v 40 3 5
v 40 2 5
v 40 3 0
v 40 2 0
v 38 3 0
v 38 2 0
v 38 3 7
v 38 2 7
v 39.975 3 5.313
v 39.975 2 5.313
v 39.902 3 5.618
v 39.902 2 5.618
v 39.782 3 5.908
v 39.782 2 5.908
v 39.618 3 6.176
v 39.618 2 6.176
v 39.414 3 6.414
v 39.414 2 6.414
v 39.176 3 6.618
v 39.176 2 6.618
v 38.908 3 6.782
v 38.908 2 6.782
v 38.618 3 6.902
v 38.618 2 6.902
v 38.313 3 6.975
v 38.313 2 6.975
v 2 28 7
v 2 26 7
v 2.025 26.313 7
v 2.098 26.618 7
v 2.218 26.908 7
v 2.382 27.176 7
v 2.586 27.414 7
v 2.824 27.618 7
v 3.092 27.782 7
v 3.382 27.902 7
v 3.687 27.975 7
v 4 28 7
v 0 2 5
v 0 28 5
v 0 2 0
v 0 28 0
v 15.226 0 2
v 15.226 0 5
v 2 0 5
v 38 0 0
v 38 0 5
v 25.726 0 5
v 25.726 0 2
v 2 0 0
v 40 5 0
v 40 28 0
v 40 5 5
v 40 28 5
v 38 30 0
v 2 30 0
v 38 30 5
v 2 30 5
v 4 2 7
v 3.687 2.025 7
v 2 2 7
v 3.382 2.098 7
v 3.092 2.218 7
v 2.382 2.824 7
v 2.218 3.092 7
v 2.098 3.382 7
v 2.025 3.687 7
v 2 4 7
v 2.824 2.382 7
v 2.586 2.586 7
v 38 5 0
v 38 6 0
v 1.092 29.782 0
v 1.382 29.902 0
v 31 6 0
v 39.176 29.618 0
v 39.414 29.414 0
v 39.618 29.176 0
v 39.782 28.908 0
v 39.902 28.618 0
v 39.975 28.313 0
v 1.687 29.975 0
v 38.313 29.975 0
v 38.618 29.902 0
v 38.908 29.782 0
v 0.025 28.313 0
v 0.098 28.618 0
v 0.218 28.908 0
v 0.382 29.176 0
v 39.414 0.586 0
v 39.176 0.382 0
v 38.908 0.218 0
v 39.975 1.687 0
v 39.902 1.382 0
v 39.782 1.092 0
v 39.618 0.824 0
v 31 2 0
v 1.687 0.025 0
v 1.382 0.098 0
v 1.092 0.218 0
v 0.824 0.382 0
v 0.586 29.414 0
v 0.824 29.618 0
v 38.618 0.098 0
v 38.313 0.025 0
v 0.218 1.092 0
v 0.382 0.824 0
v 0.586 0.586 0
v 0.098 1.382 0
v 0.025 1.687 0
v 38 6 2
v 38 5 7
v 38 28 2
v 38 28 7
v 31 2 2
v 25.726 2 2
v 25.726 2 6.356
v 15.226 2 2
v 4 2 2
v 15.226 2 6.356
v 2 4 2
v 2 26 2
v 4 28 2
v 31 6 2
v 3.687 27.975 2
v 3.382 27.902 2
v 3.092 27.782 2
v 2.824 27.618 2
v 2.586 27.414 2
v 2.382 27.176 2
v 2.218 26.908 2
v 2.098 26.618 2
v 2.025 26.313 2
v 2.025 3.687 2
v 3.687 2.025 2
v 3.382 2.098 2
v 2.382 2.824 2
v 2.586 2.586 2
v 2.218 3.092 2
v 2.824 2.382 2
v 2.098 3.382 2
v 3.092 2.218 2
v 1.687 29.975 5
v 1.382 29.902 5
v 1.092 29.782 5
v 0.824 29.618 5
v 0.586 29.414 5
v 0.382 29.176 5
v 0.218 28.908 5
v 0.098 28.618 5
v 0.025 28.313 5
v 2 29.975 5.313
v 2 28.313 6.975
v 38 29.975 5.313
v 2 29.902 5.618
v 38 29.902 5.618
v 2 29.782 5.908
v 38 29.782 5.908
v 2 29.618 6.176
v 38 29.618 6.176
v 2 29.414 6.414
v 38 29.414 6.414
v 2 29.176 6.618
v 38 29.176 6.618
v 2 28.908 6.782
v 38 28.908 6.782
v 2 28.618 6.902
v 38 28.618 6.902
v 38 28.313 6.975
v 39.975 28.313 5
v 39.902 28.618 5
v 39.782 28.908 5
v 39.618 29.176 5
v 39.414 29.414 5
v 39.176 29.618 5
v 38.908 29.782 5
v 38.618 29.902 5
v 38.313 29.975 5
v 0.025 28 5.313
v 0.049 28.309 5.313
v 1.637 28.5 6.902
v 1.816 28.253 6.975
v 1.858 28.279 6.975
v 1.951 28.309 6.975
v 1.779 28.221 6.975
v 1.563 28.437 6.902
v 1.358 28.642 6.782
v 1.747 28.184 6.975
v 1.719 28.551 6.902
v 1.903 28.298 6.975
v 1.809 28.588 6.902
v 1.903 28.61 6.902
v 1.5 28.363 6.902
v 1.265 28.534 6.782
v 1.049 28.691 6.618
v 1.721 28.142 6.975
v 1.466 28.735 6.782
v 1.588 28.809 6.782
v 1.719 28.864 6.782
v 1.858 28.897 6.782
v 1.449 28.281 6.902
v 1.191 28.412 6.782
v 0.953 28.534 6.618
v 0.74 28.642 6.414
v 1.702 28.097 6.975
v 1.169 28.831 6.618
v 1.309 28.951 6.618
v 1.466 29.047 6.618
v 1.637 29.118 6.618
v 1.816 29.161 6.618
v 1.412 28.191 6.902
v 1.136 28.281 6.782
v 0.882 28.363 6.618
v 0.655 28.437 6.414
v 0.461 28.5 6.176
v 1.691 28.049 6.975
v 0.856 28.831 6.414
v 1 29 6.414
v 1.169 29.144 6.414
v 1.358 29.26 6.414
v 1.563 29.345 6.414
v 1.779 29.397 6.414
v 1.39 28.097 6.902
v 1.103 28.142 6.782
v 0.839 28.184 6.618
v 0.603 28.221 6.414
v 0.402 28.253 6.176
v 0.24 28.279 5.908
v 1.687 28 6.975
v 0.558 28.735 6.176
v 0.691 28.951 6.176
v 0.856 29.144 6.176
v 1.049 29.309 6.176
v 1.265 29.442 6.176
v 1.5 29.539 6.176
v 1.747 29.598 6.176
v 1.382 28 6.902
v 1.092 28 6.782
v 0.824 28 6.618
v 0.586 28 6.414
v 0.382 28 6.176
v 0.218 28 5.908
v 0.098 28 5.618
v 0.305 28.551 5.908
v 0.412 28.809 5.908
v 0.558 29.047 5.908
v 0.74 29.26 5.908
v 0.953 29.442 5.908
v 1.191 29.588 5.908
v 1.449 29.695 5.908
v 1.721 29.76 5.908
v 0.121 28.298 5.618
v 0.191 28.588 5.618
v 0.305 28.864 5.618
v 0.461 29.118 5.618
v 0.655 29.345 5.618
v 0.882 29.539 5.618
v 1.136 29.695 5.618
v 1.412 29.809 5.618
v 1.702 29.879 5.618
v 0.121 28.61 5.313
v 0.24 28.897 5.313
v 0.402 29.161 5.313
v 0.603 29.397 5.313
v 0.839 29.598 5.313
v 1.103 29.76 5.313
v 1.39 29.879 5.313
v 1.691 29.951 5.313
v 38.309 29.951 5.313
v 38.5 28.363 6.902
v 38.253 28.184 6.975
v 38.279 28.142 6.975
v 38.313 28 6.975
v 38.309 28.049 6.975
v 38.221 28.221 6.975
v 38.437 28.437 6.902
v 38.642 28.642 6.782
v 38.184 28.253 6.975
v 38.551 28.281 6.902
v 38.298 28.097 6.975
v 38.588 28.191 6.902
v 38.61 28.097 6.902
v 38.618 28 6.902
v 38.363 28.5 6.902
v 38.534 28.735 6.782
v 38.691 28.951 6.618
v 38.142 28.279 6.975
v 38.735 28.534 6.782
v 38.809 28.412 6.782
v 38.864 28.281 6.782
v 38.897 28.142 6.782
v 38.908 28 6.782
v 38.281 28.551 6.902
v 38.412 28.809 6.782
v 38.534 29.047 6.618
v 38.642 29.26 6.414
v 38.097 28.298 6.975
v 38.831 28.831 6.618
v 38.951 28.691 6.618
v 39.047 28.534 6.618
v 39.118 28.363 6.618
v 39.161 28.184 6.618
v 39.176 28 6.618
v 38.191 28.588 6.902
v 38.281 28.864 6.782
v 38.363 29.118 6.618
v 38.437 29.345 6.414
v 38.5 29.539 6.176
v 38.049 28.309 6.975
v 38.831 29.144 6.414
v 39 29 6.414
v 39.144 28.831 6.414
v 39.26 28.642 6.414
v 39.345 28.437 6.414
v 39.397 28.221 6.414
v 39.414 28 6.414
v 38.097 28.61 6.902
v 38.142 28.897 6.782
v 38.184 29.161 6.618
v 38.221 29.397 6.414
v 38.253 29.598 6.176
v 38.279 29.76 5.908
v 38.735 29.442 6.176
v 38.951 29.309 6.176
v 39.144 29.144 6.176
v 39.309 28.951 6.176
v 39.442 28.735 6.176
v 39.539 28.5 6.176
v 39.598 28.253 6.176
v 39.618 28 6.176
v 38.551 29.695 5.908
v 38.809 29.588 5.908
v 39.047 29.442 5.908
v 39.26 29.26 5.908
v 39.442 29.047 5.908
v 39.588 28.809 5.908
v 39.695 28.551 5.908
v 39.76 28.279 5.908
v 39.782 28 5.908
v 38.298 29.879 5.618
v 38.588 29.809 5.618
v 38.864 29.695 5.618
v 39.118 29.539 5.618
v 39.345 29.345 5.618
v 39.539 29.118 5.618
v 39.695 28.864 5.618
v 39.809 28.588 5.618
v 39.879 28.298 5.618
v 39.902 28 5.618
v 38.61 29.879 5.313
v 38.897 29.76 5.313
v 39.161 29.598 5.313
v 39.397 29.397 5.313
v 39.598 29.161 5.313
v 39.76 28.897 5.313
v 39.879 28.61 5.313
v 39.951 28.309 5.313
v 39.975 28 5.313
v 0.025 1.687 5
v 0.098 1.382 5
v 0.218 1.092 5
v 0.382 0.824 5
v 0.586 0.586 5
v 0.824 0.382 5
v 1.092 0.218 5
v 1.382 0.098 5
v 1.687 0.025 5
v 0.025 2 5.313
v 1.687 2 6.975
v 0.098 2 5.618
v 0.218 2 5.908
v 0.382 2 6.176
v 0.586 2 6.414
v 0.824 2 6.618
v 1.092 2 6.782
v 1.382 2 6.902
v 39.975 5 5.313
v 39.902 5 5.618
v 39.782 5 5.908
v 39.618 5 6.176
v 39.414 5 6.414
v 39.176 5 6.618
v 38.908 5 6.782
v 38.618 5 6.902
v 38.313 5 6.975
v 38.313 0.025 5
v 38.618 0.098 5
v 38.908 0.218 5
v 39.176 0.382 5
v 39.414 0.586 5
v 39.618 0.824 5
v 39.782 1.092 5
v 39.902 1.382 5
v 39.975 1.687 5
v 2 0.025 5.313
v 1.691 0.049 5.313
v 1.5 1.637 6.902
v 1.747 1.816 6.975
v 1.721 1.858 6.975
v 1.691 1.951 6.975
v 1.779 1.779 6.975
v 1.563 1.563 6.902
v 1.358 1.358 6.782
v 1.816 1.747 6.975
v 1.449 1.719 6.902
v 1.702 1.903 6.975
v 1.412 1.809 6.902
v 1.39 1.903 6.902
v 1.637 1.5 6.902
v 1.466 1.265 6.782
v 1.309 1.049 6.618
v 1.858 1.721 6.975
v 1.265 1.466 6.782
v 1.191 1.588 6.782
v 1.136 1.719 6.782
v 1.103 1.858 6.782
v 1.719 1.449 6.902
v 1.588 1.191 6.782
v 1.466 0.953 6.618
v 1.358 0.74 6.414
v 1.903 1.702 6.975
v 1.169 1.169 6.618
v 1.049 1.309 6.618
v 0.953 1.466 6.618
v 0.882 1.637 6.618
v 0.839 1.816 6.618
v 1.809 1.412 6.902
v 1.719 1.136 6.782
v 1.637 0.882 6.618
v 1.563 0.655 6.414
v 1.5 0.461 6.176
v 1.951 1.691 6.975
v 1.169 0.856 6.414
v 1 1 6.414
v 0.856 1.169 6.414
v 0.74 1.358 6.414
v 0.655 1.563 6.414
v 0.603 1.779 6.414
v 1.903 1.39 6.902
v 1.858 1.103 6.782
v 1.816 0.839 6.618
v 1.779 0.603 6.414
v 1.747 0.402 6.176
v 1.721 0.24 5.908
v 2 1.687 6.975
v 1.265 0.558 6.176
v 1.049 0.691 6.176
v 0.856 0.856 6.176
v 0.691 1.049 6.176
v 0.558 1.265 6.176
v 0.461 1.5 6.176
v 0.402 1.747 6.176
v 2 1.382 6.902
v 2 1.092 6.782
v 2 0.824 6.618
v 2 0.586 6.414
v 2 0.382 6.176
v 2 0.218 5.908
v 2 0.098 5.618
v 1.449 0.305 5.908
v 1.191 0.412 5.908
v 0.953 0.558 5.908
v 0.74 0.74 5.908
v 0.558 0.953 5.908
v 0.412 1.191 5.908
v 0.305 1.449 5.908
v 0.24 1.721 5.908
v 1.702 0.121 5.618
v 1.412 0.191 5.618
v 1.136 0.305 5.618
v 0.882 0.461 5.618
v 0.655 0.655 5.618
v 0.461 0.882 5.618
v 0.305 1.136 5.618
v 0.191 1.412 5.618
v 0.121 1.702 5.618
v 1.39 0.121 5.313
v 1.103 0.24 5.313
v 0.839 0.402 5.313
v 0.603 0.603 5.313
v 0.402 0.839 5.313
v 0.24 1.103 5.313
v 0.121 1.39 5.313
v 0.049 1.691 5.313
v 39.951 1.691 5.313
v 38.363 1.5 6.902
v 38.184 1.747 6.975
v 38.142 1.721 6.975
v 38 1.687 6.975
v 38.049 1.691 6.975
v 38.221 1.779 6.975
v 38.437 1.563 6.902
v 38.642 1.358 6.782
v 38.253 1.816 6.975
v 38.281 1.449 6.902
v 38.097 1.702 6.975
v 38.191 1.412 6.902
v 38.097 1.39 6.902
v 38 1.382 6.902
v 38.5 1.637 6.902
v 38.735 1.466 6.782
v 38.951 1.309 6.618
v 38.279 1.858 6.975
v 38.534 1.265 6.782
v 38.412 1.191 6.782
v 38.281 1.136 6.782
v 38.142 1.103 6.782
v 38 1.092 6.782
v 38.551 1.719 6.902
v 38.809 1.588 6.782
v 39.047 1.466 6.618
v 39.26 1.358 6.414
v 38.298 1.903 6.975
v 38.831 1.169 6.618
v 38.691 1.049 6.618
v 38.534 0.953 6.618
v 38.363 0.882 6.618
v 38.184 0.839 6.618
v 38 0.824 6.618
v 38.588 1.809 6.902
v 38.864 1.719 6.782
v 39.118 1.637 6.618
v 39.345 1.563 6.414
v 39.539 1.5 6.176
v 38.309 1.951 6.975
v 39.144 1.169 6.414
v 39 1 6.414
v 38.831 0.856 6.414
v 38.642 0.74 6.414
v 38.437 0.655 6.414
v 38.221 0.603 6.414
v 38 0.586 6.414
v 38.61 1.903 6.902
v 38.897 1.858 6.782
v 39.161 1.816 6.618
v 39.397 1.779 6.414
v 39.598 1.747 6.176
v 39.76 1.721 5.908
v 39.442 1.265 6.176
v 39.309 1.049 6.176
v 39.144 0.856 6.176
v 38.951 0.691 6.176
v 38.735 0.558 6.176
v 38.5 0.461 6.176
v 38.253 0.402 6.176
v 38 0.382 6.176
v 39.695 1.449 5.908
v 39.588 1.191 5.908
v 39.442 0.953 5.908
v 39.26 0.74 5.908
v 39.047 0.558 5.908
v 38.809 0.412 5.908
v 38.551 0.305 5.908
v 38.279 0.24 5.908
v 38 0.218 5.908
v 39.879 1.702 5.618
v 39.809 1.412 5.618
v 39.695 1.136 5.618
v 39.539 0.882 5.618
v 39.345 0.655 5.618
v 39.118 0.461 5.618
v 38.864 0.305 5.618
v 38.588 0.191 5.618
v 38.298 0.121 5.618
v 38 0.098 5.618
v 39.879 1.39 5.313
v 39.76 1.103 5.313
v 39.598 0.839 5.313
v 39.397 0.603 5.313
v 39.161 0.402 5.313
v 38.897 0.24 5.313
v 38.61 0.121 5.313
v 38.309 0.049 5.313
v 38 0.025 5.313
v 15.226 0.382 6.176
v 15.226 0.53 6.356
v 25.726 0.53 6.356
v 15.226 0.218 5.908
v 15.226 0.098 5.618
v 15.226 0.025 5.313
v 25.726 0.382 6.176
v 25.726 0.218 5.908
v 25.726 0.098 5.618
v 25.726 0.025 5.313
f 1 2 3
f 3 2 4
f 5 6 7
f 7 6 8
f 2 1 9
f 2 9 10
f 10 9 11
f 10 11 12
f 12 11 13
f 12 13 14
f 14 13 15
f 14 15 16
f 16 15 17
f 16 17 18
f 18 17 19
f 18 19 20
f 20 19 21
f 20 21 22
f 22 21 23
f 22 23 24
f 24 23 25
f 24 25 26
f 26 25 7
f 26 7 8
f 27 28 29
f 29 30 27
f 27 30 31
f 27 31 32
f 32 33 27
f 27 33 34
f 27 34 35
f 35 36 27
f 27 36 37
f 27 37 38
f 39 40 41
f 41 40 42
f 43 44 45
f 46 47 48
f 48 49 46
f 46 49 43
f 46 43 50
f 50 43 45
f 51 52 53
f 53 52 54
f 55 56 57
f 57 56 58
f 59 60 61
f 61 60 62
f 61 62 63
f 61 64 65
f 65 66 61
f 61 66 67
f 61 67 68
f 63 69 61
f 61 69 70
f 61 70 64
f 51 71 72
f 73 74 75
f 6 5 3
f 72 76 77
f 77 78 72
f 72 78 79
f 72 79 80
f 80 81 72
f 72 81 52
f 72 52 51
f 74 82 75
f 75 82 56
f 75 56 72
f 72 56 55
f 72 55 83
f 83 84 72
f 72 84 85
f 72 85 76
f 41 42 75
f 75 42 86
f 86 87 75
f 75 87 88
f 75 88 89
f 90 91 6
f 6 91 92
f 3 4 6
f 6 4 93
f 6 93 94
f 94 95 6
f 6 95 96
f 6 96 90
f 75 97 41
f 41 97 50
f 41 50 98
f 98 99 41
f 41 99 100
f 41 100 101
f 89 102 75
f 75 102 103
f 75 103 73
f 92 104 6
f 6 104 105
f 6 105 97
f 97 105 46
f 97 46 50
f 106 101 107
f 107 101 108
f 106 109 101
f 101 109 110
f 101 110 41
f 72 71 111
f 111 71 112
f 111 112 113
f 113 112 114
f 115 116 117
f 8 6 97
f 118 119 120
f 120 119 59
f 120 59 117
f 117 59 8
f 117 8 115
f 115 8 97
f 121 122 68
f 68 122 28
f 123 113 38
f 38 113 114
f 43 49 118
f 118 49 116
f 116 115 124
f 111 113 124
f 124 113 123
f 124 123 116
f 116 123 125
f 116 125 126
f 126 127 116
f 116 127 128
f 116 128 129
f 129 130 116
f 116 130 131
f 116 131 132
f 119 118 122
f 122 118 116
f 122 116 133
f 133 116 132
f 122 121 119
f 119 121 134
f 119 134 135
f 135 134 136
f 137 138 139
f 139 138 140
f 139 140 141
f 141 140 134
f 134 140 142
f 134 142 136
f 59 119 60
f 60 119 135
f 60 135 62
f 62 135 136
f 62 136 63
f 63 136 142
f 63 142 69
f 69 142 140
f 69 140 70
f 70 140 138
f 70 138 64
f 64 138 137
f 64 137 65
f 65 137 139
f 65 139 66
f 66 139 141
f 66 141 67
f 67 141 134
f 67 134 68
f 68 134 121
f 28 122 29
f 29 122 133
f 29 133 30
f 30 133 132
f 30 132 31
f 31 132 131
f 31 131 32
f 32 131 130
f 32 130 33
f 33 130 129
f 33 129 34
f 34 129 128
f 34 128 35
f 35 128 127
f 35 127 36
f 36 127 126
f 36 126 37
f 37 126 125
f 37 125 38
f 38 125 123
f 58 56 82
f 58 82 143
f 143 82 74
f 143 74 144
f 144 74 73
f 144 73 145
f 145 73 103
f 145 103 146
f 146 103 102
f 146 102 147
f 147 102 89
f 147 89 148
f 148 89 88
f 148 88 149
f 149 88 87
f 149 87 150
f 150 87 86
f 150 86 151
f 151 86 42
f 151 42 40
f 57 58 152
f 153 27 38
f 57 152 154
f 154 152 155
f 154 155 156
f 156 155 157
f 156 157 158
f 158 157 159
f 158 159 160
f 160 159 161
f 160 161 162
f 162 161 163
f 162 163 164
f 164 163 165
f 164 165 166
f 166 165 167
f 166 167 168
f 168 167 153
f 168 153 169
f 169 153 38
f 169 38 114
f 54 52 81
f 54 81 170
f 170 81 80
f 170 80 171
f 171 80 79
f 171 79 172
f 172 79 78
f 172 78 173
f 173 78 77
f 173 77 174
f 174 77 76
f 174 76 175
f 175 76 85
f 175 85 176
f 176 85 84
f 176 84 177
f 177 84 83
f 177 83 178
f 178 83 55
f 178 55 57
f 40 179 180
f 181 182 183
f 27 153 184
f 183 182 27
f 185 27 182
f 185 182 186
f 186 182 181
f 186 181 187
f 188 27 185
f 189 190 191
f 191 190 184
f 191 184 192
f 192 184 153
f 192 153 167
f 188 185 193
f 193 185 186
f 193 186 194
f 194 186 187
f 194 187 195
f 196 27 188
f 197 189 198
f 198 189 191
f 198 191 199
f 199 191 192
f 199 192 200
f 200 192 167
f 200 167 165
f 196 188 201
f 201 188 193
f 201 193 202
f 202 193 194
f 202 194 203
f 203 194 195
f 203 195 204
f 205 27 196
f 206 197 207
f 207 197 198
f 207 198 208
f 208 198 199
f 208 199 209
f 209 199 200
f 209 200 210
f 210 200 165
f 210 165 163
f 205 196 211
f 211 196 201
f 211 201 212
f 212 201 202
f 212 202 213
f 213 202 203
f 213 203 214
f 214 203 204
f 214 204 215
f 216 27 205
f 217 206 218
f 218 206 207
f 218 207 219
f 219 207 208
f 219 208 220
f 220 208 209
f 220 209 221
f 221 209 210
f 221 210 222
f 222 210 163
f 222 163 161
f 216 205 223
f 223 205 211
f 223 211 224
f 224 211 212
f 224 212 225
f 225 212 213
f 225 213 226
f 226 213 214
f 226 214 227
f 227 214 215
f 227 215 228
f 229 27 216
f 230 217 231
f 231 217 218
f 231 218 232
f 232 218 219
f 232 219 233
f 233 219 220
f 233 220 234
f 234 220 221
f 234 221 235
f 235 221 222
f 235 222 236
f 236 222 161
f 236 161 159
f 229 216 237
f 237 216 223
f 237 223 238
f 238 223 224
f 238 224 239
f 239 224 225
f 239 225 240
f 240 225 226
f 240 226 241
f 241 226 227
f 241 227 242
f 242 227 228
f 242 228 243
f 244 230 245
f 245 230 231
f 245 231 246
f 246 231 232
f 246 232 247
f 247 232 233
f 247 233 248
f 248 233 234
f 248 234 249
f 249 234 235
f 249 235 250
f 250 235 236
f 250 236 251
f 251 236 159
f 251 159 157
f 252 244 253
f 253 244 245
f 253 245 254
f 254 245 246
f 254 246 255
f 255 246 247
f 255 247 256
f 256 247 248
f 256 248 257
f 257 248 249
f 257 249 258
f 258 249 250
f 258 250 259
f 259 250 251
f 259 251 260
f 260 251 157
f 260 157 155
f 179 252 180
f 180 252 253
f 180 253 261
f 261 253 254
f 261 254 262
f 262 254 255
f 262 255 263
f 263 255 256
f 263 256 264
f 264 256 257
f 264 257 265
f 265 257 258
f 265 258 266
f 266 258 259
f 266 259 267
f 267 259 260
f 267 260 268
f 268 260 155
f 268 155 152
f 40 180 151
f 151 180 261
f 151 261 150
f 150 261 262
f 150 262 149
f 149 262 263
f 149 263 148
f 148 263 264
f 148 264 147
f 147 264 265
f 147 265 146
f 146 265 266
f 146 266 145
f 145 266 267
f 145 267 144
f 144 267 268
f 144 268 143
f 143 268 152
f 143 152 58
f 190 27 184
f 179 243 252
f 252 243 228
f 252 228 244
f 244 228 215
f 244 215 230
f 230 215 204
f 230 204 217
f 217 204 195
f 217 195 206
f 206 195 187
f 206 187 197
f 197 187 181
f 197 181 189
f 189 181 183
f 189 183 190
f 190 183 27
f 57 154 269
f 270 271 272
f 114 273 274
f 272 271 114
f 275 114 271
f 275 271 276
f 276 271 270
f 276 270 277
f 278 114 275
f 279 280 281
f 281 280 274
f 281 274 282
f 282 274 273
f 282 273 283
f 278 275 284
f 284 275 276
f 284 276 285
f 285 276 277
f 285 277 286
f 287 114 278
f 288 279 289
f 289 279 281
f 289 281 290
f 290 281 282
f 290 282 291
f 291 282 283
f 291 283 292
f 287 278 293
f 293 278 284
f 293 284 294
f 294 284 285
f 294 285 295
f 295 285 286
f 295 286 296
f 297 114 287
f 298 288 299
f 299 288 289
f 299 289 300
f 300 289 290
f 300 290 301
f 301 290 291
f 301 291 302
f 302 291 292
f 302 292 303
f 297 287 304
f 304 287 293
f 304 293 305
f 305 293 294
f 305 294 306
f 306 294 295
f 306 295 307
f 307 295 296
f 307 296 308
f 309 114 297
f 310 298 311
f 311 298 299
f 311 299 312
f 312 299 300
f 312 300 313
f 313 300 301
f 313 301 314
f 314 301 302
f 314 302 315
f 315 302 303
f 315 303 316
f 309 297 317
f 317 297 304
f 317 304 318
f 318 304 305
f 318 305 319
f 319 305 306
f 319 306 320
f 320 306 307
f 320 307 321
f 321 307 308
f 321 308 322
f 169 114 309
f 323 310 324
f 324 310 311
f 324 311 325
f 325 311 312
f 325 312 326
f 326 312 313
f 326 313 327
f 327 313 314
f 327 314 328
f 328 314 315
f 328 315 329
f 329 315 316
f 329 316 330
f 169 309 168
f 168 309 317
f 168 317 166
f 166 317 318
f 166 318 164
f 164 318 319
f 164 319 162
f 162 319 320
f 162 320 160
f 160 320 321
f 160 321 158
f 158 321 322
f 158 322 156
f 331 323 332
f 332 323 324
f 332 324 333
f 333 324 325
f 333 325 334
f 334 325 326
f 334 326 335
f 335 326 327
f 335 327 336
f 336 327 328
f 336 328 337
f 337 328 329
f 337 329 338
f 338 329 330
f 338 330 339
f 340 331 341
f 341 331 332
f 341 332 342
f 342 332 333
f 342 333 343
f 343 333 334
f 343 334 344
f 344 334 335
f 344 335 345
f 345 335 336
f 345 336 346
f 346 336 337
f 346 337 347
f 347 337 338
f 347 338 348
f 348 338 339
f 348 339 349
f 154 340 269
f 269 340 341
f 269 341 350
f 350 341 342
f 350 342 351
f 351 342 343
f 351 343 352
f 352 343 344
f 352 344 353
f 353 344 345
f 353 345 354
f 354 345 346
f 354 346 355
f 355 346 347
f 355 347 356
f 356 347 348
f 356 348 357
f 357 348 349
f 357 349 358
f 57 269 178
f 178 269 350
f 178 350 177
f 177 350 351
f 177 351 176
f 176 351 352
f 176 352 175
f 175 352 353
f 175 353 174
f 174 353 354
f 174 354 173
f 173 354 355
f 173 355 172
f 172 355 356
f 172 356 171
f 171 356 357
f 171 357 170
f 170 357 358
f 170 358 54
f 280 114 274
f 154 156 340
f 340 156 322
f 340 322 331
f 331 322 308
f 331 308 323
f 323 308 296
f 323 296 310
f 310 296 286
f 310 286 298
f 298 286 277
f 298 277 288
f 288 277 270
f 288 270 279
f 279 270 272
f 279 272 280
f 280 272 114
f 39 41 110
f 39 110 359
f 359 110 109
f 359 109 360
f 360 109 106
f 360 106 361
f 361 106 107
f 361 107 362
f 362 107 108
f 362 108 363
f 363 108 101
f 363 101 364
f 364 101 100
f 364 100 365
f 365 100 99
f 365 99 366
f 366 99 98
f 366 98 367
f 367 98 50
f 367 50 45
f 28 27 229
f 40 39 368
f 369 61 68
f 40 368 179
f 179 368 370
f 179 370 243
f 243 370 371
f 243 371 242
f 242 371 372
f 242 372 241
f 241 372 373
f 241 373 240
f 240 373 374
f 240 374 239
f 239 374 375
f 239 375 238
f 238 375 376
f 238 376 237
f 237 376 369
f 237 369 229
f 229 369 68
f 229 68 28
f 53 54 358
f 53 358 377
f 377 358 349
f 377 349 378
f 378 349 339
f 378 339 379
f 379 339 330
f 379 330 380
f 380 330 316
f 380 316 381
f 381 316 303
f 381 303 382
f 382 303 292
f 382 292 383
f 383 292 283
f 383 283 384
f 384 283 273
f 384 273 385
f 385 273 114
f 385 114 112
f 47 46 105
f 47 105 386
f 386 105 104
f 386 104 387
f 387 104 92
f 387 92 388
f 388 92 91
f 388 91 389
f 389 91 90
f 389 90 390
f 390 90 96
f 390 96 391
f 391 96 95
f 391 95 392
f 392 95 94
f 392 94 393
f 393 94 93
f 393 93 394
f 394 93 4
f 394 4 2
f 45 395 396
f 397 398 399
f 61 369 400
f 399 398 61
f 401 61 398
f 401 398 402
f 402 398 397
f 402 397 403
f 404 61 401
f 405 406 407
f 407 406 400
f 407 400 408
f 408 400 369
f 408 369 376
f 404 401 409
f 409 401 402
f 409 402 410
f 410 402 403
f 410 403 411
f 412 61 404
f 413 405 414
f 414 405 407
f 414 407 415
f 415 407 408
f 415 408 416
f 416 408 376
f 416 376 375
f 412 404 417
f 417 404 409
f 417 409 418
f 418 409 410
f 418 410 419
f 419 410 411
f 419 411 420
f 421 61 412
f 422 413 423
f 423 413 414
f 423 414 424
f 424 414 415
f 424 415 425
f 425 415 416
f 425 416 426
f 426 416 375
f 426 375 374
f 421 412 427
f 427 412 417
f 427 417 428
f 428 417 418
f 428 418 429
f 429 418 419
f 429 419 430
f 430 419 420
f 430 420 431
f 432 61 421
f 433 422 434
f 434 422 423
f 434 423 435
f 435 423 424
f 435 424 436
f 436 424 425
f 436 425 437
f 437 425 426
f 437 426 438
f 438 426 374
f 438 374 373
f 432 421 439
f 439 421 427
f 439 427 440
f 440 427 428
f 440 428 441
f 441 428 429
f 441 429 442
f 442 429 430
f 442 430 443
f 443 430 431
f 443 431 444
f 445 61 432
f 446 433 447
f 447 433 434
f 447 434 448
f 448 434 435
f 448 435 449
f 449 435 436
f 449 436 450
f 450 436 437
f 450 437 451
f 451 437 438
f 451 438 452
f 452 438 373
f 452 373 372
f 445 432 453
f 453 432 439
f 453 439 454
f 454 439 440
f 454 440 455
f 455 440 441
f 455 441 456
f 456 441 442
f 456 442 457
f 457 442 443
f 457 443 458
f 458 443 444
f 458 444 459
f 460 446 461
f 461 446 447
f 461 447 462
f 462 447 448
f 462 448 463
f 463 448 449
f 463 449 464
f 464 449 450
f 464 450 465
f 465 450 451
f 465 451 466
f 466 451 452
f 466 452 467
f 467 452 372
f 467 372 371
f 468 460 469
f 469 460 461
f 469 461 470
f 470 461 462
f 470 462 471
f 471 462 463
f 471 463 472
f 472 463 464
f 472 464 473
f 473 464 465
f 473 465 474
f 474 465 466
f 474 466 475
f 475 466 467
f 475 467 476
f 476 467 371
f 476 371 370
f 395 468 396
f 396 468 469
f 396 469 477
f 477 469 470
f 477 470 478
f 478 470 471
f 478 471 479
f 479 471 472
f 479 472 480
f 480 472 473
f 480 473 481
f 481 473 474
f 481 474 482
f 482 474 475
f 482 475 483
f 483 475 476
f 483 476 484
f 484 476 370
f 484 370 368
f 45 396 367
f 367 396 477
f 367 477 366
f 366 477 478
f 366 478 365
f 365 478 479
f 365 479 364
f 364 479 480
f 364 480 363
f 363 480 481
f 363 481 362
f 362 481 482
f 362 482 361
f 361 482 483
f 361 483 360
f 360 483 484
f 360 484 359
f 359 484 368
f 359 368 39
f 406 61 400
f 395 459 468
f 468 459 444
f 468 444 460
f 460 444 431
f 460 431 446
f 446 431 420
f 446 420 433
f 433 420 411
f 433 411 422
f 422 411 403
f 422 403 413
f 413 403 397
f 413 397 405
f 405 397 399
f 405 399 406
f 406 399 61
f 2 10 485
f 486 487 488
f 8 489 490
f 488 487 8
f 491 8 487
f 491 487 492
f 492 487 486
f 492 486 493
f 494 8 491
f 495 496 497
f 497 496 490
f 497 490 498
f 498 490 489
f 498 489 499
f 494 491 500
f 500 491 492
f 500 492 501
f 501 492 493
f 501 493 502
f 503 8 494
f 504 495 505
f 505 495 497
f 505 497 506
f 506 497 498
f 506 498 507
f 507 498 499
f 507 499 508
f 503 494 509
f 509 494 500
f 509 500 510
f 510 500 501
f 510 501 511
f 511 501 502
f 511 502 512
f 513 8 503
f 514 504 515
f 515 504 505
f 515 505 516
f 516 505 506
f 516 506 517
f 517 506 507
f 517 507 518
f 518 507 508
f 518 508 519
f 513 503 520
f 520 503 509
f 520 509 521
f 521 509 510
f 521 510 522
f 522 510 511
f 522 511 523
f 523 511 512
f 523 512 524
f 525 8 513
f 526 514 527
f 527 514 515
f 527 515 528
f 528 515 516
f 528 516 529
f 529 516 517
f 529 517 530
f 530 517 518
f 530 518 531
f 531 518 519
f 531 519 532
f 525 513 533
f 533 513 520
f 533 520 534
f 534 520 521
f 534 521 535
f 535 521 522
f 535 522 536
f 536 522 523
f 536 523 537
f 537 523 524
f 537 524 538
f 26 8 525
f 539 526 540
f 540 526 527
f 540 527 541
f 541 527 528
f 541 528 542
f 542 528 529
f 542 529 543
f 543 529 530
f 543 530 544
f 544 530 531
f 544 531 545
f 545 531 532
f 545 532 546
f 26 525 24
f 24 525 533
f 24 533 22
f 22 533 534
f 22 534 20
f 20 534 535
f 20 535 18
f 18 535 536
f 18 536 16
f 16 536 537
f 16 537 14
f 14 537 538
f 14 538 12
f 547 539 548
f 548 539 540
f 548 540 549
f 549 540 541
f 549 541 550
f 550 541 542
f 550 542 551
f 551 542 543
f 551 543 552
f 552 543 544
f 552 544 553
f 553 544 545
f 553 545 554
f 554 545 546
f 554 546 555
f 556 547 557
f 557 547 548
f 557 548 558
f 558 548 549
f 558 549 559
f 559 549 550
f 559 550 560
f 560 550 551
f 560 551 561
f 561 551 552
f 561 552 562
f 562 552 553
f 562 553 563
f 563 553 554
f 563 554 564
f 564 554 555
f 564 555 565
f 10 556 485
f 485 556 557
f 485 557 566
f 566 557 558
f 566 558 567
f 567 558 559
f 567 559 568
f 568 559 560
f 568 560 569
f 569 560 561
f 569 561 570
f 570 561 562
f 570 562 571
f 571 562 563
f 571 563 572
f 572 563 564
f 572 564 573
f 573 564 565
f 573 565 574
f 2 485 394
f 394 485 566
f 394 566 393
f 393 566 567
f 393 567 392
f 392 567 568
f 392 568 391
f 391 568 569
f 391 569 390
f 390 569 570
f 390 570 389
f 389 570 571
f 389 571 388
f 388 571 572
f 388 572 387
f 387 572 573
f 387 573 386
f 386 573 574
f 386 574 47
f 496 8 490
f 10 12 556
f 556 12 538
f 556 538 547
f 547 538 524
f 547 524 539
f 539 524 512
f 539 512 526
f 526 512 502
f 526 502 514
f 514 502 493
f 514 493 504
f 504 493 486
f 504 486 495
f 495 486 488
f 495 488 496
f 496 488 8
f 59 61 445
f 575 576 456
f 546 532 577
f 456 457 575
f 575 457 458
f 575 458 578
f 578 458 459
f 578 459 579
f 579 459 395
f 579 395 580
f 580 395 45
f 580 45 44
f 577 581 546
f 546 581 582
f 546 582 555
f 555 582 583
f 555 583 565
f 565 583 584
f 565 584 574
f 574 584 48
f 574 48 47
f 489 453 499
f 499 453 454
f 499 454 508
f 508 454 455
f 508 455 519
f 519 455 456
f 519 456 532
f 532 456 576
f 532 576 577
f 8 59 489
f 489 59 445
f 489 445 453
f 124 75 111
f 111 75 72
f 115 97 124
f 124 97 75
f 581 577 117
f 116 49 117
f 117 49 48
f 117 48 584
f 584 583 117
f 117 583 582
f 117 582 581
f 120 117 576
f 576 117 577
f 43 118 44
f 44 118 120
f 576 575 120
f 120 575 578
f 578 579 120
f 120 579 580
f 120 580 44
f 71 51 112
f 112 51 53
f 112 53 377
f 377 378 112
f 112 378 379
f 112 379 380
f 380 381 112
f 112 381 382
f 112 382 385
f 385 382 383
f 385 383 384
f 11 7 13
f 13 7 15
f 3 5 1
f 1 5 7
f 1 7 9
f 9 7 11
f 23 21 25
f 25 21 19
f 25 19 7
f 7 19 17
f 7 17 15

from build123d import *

# Parameters (mm, degrees)
SKETCH1_W           = 40
SKETCH1_H           = 30
BOSS_EXTRUDE1_DEPTH = 7
SKETCH2_W           = 36
SKETCH2_H           = 26
CUT_EXTRUDE1_DEPTH  = 5
FILLET1_R           = 2
FILLET2_R           = 2
SKETCH3_W           = 7
SKETCH3_H           = 4
CUT_EXTRUDE2_DEPTH  = 2
CUT_EXTRUDE3_REACH  = 51.325
SKETCH6_W           = 10.5
SKETCH6_H           = 4.355980474
SKETCH7_W           = 2
SKETCH7_H           = 2
CUT_EXTRUDE4_DEPTH  = 10


with BuildPart() as part:
    # Sketch1 → Boss-Extrude1 (new body)
    with BuildSketch(Plane.XY):
        with Locations((20, 15)):
            Rectangle(SKETCH1_W, SKETCH1_H)
    extrude(amount=BOSS_EXTRUDE1_DEPTH)

    # Sketch2 → Cut-Extrude1 (cut)
    with BuildSketch(Plane.XY.offset(7)):
        with Locations((20, 15)):
            Rectangle(SKETCH2_W, SKETCH2_H)
    extrude(amount=-CUT_EXTRUDE1_DEPTH, mode=Mode.SUBTRACT)

    # Fillet1
    fillet1_edges = [part.edges().sort_by_distance(p)[0] for p in [
        (2, 2, 4.5),
        (2, 28, 4.5),
    ]]
    fillet(fillet1_edges, radius=FILLET1_R)

    # Fillet2
    fillet2_edges = [part.edges().sort_by_distance(p)[0] for p in [
        (40, 15, 7),
        (20, 30, 7),
        (0, 15, 7),
        (20, 0, 7),
        (0, 30, 3.5),
        (40, 30, 3.5),
        (40, 0, 3.5),
        (0, 0, 3.5),
    ]]
    fillet(fillet2_edges, radius=FILLET2_R - 0.0001)  # a hair under: the kernel refuses the full size

    # Sketch3 → Cut-Extrude2 (cut)
    with BuildSketch(Plane.XY.offset(2)):
        with Locations((34.5, 4)):
            Rectangle(SKETCH3_W, SKETCH3_H)
    extrude(amount=-CUT_EXTRUDE2_DEPTH, mode=Mode.SUBTRACT)

    # Cut-Extrude3: up to this face of the body (flat: up to its plane)
    cut_extrude3_end = Plane(part.part.faces().sort_by_distance((20, 0, 2.50005))[0])
    # Sketch6 → Cut-Extrude3 (cut, up to the picked face)
    with BuildSketch(Plane(origin=(0, 2, 0), x_dir=(1, 0, 0), z_dir=(0, 1, 0)), mode=Mode.PRIVATE) as cut_extrude3_sk1:
        with Locations((20.475771031, -4.177990237)):
            Rectangle(SKETCH6_W, SKETCH6_H)
    cut_extrude3_tool1 = split(extrude(cut_extrude3_sk1.sketch, amount=-CUT_EXTRUDE3_REACH, mode=Mode.PRIVATE), bisect_by=cut_extrude3_end, keep=Keep.BOTH, mode=Mode.PRIVATE)
    add(cut_extrude3_tool1.solids().sort_by(Axis((20.475771, 2, 4.17799), (0, -1, 0)))[0], mode=Mode.SUBTRACT)

    # Sketch7 → Cut-Extrude4 (cut)
    with BuildSketch(Plane(origin=(0, 0, 0), x_dir=(-1, 0, 0), z_dir=(0, 0, -1))):
        with Locations((-39, 4)):
            Rectangle(SKETCH7_W, SKETCH7_H)
    extrude(amount=-CUT_EXTRUDE4_DEPTH, mode=Mode.SUBTRACT)


solid = part.part
